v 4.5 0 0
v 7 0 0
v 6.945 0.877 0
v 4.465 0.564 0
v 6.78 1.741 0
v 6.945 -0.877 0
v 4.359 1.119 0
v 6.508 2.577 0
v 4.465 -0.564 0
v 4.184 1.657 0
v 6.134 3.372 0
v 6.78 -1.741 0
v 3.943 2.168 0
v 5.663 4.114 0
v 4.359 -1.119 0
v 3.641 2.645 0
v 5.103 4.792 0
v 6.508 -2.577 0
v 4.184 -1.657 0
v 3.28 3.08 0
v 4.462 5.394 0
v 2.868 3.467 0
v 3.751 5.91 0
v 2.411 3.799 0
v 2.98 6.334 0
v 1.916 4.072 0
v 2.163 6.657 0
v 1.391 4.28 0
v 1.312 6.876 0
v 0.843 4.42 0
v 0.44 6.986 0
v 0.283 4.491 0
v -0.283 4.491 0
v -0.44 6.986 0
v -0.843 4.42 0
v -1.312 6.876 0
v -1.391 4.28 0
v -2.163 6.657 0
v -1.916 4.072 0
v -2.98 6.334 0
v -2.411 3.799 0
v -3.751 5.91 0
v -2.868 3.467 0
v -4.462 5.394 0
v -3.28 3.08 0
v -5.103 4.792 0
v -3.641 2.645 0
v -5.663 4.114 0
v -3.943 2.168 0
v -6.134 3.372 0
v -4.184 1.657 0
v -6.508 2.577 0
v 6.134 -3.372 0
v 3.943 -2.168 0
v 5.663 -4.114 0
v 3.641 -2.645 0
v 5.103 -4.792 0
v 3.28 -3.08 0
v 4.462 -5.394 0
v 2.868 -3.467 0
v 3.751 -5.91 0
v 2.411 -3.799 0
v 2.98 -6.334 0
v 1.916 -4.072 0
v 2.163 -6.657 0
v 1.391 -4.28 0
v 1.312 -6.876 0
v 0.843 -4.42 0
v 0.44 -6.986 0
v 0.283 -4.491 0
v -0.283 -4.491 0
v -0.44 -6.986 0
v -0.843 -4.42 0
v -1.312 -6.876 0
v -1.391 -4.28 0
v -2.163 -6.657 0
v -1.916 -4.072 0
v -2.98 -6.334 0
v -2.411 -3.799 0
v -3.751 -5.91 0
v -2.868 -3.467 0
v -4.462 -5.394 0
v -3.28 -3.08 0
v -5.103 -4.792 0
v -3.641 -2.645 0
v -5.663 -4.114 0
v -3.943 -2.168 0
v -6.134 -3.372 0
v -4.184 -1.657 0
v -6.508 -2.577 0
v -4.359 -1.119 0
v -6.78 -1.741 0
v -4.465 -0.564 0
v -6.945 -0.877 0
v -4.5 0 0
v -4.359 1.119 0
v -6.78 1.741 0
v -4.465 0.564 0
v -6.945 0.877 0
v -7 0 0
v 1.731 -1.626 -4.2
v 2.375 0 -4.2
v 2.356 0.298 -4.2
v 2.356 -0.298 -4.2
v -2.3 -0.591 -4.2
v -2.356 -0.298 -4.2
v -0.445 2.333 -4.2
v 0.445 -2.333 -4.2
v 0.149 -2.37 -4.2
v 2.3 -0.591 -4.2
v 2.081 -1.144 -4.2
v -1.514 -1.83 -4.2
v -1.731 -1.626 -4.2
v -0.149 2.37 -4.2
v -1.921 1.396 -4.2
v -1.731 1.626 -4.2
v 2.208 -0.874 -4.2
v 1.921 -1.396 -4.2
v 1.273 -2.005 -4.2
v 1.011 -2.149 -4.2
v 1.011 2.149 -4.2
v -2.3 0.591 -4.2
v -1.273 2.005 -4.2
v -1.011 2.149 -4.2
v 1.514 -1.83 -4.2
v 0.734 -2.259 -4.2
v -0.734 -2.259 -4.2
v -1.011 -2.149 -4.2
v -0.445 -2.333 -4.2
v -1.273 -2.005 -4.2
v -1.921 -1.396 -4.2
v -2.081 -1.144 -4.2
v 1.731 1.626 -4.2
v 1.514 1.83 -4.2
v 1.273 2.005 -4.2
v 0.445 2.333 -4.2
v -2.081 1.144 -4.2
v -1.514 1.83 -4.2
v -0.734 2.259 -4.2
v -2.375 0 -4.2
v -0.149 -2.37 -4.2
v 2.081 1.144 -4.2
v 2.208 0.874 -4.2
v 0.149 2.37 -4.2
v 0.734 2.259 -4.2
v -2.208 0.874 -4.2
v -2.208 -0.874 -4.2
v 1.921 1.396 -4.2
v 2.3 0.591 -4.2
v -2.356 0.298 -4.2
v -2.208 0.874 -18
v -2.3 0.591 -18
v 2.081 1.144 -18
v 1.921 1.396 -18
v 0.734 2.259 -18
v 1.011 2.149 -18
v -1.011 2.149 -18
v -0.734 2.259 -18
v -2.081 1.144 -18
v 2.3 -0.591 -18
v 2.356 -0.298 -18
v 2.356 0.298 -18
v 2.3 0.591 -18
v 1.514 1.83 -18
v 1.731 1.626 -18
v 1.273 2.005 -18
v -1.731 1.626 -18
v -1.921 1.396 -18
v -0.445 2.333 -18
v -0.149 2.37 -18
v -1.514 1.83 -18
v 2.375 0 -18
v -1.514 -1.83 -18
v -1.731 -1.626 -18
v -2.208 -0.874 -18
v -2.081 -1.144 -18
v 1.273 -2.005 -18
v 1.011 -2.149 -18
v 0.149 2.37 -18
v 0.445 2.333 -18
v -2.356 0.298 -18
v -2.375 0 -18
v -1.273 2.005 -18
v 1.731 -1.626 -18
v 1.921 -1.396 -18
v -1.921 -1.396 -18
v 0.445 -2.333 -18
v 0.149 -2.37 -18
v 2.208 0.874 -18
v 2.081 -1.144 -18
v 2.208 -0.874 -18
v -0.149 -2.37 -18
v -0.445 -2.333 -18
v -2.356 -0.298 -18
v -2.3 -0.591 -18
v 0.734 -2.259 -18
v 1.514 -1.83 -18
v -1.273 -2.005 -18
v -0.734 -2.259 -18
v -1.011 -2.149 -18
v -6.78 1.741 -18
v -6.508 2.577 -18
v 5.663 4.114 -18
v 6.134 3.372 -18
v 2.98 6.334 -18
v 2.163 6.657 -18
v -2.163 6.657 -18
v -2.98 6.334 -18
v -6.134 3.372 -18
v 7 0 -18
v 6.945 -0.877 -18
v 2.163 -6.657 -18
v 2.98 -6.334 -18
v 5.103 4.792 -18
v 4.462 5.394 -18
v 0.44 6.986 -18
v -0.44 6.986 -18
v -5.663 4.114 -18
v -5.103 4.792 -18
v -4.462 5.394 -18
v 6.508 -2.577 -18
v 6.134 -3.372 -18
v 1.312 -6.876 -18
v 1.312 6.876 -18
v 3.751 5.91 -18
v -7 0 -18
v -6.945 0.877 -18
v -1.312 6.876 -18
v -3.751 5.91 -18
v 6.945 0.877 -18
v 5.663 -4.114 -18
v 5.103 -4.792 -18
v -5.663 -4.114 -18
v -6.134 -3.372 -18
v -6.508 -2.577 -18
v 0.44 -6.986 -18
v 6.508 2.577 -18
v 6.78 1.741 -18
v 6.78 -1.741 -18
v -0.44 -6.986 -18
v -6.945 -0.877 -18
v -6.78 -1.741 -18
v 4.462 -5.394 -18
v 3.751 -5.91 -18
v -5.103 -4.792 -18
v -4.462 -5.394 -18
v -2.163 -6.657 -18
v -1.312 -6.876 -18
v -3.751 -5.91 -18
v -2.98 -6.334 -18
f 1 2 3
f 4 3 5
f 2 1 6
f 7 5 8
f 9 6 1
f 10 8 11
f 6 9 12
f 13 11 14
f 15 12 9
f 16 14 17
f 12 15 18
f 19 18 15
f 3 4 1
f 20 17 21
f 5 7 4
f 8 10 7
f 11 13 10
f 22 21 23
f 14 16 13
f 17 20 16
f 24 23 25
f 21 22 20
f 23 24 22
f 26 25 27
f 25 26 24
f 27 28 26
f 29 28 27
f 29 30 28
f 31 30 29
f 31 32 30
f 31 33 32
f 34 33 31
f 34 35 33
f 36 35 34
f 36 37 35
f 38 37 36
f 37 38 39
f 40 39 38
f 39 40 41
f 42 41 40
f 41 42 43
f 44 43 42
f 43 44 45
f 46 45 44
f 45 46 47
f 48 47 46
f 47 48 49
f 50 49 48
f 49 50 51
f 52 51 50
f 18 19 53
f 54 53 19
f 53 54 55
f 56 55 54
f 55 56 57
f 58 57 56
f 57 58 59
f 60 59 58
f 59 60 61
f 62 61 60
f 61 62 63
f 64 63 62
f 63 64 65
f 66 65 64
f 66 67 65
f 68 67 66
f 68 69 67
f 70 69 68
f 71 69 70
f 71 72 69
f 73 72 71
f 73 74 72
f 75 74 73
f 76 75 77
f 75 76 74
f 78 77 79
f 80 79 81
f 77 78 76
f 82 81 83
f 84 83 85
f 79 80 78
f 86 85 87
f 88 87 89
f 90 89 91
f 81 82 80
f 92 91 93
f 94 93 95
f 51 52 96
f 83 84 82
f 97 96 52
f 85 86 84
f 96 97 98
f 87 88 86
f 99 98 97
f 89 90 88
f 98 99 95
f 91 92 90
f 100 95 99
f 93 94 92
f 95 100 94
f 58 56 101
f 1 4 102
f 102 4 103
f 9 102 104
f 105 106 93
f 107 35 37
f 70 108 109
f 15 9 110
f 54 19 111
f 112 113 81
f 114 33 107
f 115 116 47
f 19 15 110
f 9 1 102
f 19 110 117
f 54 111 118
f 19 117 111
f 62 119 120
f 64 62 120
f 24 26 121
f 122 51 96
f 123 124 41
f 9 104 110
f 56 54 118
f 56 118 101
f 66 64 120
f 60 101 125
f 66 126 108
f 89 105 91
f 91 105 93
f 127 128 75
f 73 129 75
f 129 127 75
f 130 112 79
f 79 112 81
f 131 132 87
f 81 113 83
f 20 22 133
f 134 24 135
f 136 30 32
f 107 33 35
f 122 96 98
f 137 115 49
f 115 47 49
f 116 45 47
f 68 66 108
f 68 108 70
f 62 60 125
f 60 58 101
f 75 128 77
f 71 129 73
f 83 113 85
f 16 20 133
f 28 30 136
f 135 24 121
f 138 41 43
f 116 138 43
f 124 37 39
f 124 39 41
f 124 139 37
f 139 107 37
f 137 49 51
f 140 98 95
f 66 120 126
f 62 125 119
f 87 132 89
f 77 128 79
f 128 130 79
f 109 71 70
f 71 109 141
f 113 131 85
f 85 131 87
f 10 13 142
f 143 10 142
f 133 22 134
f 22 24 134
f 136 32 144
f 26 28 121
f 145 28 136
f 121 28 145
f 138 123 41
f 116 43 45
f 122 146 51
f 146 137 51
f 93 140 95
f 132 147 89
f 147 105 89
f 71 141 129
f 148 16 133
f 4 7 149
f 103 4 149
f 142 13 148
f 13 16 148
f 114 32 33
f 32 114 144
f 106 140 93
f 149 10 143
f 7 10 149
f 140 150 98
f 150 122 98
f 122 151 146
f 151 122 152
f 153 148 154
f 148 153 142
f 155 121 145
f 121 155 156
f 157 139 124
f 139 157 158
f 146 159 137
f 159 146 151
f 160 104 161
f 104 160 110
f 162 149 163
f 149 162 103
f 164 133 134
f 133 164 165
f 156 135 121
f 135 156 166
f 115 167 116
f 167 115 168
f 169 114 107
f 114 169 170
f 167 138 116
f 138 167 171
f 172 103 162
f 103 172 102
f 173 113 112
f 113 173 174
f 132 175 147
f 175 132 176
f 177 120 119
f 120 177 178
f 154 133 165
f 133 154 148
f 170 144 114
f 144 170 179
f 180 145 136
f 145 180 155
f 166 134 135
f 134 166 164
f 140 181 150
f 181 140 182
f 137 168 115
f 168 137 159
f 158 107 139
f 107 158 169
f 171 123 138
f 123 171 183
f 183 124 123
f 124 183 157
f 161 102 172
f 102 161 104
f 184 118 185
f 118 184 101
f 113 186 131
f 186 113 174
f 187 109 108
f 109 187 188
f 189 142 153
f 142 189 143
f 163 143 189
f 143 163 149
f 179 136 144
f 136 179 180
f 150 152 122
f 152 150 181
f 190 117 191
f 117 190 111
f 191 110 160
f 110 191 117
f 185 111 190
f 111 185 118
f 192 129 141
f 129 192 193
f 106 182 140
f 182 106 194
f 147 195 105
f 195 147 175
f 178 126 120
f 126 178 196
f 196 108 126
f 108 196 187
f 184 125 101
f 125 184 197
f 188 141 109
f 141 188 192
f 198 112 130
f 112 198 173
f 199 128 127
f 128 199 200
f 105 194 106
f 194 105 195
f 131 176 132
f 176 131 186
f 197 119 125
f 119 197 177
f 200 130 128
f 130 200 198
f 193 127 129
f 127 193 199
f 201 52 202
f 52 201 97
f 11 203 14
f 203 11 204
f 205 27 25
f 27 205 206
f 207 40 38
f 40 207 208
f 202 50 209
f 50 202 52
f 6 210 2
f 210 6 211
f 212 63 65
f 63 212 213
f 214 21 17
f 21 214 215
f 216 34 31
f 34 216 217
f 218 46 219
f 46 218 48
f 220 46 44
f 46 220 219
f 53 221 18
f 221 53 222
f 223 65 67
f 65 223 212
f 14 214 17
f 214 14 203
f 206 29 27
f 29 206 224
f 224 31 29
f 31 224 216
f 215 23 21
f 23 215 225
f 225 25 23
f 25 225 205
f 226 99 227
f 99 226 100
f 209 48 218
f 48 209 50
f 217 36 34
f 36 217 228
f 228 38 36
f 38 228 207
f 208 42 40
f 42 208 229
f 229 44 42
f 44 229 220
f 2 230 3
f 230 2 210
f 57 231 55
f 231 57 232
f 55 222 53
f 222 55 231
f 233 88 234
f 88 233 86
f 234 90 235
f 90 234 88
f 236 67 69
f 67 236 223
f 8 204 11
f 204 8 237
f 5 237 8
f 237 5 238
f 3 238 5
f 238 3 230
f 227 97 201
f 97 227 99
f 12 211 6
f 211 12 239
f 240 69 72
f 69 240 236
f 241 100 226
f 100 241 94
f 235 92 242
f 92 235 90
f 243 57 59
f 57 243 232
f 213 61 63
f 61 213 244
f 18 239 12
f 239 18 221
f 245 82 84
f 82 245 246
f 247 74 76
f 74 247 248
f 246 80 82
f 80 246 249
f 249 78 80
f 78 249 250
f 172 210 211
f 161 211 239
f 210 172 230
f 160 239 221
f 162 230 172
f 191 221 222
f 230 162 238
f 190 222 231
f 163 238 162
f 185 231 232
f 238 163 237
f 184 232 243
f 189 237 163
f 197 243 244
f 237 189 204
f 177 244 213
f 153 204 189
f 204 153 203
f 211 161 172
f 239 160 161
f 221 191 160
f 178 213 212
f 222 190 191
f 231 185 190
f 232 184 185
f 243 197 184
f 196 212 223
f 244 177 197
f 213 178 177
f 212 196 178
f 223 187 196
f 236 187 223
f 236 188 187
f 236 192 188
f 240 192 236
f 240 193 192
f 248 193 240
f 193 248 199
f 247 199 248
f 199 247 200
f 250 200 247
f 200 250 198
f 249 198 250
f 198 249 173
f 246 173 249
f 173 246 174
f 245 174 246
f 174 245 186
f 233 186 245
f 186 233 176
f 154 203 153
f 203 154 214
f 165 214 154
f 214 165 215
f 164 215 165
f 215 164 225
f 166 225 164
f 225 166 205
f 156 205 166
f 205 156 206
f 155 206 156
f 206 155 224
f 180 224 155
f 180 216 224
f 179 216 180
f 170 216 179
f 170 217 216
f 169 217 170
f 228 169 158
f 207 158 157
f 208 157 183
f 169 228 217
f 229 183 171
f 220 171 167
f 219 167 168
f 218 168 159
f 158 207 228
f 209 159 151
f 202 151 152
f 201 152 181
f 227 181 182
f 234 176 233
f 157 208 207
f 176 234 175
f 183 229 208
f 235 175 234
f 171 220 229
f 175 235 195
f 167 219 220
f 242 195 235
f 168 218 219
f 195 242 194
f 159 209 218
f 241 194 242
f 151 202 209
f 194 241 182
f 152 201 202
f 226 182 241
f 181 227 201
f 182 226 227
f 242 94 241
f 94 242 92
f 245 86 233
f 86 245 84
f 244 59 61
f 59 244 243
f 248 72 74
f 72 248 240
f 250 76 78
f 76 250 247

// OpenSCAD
$fn = 50;


difference() {
	union() {
		translate(v = [0, 0, -18.0000000000]) {
			cylinder(h = 18, r = 7.0000000000);
		}
	}
	union() {
		translate(v = [0, 0, 0]) {
			rotate(a = [0, 0, 0]) {
				difference() {
					union() {
						translate(v = [0, 0, -21.0000000000]) {
							cylinder(h = 21, r = 2.2500000000);
						}
						translate(v = [0, 0, -4.2000000000]) {
							cylinder(h = 4.2000000000, r1 = 2.3750000000, r2 = 4.5000000000);
						}
						translate(v = [0, 0, -21.0000000000]) {
							cylinder(h = 21, r = 2.3750000000);
						}
						translate(v = [0, 0, -21.0000000000]) {
							cylinder(h = 21, r = 2.2500000000);
						}
					}
					union();
				}
			}
		}
	}
}
